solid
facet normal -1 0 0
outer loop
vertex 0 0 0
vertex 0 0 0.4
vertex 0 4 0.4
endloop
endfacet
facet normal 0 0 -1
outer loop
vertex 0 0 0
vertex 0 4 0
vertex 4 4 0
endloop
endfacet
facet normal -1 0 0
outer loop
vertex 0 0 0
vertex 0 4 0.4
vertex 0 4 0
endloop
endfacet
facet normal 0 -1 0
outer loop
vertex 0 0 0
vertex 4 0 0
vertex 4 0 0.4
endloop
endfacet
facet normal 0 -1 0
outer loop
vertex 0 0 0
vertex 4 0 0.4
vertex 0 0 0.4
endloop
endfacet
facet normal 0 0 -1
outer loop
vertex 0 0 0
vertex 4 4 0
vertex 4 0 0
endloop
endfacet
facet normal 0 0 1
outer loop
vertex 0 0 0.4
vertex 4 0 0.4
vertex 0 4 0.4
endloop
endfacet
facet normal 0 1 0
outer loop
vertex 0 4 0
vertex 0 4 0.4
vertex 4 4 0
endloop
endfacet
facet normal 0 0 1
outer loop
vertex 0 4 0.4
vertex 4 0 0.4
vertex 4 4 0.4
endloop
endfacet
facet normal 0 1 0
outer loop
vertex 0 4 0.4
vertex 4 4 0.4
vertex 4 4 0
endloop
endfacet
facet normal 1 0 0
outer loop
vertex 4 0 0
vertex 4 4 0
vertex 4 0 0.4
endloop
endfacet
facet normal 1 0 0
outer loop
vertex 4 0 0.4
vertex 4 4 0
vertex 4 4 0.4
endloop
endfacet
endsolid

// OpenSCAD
/* Warning, this is a very basic generator with a lot of approximation 
input data : [XQFN, TUB, 4x4x0.4mm, 38, , A, C04-21446A]
generated by com.zoubworld.electronics.cad.model3d.Basic
Date : Sun Feb 15 10:50:49 CET 2026
*/

//body
color("black")
translate([0,0,0])
cube([4.0,4.0,0.4], center=false);
